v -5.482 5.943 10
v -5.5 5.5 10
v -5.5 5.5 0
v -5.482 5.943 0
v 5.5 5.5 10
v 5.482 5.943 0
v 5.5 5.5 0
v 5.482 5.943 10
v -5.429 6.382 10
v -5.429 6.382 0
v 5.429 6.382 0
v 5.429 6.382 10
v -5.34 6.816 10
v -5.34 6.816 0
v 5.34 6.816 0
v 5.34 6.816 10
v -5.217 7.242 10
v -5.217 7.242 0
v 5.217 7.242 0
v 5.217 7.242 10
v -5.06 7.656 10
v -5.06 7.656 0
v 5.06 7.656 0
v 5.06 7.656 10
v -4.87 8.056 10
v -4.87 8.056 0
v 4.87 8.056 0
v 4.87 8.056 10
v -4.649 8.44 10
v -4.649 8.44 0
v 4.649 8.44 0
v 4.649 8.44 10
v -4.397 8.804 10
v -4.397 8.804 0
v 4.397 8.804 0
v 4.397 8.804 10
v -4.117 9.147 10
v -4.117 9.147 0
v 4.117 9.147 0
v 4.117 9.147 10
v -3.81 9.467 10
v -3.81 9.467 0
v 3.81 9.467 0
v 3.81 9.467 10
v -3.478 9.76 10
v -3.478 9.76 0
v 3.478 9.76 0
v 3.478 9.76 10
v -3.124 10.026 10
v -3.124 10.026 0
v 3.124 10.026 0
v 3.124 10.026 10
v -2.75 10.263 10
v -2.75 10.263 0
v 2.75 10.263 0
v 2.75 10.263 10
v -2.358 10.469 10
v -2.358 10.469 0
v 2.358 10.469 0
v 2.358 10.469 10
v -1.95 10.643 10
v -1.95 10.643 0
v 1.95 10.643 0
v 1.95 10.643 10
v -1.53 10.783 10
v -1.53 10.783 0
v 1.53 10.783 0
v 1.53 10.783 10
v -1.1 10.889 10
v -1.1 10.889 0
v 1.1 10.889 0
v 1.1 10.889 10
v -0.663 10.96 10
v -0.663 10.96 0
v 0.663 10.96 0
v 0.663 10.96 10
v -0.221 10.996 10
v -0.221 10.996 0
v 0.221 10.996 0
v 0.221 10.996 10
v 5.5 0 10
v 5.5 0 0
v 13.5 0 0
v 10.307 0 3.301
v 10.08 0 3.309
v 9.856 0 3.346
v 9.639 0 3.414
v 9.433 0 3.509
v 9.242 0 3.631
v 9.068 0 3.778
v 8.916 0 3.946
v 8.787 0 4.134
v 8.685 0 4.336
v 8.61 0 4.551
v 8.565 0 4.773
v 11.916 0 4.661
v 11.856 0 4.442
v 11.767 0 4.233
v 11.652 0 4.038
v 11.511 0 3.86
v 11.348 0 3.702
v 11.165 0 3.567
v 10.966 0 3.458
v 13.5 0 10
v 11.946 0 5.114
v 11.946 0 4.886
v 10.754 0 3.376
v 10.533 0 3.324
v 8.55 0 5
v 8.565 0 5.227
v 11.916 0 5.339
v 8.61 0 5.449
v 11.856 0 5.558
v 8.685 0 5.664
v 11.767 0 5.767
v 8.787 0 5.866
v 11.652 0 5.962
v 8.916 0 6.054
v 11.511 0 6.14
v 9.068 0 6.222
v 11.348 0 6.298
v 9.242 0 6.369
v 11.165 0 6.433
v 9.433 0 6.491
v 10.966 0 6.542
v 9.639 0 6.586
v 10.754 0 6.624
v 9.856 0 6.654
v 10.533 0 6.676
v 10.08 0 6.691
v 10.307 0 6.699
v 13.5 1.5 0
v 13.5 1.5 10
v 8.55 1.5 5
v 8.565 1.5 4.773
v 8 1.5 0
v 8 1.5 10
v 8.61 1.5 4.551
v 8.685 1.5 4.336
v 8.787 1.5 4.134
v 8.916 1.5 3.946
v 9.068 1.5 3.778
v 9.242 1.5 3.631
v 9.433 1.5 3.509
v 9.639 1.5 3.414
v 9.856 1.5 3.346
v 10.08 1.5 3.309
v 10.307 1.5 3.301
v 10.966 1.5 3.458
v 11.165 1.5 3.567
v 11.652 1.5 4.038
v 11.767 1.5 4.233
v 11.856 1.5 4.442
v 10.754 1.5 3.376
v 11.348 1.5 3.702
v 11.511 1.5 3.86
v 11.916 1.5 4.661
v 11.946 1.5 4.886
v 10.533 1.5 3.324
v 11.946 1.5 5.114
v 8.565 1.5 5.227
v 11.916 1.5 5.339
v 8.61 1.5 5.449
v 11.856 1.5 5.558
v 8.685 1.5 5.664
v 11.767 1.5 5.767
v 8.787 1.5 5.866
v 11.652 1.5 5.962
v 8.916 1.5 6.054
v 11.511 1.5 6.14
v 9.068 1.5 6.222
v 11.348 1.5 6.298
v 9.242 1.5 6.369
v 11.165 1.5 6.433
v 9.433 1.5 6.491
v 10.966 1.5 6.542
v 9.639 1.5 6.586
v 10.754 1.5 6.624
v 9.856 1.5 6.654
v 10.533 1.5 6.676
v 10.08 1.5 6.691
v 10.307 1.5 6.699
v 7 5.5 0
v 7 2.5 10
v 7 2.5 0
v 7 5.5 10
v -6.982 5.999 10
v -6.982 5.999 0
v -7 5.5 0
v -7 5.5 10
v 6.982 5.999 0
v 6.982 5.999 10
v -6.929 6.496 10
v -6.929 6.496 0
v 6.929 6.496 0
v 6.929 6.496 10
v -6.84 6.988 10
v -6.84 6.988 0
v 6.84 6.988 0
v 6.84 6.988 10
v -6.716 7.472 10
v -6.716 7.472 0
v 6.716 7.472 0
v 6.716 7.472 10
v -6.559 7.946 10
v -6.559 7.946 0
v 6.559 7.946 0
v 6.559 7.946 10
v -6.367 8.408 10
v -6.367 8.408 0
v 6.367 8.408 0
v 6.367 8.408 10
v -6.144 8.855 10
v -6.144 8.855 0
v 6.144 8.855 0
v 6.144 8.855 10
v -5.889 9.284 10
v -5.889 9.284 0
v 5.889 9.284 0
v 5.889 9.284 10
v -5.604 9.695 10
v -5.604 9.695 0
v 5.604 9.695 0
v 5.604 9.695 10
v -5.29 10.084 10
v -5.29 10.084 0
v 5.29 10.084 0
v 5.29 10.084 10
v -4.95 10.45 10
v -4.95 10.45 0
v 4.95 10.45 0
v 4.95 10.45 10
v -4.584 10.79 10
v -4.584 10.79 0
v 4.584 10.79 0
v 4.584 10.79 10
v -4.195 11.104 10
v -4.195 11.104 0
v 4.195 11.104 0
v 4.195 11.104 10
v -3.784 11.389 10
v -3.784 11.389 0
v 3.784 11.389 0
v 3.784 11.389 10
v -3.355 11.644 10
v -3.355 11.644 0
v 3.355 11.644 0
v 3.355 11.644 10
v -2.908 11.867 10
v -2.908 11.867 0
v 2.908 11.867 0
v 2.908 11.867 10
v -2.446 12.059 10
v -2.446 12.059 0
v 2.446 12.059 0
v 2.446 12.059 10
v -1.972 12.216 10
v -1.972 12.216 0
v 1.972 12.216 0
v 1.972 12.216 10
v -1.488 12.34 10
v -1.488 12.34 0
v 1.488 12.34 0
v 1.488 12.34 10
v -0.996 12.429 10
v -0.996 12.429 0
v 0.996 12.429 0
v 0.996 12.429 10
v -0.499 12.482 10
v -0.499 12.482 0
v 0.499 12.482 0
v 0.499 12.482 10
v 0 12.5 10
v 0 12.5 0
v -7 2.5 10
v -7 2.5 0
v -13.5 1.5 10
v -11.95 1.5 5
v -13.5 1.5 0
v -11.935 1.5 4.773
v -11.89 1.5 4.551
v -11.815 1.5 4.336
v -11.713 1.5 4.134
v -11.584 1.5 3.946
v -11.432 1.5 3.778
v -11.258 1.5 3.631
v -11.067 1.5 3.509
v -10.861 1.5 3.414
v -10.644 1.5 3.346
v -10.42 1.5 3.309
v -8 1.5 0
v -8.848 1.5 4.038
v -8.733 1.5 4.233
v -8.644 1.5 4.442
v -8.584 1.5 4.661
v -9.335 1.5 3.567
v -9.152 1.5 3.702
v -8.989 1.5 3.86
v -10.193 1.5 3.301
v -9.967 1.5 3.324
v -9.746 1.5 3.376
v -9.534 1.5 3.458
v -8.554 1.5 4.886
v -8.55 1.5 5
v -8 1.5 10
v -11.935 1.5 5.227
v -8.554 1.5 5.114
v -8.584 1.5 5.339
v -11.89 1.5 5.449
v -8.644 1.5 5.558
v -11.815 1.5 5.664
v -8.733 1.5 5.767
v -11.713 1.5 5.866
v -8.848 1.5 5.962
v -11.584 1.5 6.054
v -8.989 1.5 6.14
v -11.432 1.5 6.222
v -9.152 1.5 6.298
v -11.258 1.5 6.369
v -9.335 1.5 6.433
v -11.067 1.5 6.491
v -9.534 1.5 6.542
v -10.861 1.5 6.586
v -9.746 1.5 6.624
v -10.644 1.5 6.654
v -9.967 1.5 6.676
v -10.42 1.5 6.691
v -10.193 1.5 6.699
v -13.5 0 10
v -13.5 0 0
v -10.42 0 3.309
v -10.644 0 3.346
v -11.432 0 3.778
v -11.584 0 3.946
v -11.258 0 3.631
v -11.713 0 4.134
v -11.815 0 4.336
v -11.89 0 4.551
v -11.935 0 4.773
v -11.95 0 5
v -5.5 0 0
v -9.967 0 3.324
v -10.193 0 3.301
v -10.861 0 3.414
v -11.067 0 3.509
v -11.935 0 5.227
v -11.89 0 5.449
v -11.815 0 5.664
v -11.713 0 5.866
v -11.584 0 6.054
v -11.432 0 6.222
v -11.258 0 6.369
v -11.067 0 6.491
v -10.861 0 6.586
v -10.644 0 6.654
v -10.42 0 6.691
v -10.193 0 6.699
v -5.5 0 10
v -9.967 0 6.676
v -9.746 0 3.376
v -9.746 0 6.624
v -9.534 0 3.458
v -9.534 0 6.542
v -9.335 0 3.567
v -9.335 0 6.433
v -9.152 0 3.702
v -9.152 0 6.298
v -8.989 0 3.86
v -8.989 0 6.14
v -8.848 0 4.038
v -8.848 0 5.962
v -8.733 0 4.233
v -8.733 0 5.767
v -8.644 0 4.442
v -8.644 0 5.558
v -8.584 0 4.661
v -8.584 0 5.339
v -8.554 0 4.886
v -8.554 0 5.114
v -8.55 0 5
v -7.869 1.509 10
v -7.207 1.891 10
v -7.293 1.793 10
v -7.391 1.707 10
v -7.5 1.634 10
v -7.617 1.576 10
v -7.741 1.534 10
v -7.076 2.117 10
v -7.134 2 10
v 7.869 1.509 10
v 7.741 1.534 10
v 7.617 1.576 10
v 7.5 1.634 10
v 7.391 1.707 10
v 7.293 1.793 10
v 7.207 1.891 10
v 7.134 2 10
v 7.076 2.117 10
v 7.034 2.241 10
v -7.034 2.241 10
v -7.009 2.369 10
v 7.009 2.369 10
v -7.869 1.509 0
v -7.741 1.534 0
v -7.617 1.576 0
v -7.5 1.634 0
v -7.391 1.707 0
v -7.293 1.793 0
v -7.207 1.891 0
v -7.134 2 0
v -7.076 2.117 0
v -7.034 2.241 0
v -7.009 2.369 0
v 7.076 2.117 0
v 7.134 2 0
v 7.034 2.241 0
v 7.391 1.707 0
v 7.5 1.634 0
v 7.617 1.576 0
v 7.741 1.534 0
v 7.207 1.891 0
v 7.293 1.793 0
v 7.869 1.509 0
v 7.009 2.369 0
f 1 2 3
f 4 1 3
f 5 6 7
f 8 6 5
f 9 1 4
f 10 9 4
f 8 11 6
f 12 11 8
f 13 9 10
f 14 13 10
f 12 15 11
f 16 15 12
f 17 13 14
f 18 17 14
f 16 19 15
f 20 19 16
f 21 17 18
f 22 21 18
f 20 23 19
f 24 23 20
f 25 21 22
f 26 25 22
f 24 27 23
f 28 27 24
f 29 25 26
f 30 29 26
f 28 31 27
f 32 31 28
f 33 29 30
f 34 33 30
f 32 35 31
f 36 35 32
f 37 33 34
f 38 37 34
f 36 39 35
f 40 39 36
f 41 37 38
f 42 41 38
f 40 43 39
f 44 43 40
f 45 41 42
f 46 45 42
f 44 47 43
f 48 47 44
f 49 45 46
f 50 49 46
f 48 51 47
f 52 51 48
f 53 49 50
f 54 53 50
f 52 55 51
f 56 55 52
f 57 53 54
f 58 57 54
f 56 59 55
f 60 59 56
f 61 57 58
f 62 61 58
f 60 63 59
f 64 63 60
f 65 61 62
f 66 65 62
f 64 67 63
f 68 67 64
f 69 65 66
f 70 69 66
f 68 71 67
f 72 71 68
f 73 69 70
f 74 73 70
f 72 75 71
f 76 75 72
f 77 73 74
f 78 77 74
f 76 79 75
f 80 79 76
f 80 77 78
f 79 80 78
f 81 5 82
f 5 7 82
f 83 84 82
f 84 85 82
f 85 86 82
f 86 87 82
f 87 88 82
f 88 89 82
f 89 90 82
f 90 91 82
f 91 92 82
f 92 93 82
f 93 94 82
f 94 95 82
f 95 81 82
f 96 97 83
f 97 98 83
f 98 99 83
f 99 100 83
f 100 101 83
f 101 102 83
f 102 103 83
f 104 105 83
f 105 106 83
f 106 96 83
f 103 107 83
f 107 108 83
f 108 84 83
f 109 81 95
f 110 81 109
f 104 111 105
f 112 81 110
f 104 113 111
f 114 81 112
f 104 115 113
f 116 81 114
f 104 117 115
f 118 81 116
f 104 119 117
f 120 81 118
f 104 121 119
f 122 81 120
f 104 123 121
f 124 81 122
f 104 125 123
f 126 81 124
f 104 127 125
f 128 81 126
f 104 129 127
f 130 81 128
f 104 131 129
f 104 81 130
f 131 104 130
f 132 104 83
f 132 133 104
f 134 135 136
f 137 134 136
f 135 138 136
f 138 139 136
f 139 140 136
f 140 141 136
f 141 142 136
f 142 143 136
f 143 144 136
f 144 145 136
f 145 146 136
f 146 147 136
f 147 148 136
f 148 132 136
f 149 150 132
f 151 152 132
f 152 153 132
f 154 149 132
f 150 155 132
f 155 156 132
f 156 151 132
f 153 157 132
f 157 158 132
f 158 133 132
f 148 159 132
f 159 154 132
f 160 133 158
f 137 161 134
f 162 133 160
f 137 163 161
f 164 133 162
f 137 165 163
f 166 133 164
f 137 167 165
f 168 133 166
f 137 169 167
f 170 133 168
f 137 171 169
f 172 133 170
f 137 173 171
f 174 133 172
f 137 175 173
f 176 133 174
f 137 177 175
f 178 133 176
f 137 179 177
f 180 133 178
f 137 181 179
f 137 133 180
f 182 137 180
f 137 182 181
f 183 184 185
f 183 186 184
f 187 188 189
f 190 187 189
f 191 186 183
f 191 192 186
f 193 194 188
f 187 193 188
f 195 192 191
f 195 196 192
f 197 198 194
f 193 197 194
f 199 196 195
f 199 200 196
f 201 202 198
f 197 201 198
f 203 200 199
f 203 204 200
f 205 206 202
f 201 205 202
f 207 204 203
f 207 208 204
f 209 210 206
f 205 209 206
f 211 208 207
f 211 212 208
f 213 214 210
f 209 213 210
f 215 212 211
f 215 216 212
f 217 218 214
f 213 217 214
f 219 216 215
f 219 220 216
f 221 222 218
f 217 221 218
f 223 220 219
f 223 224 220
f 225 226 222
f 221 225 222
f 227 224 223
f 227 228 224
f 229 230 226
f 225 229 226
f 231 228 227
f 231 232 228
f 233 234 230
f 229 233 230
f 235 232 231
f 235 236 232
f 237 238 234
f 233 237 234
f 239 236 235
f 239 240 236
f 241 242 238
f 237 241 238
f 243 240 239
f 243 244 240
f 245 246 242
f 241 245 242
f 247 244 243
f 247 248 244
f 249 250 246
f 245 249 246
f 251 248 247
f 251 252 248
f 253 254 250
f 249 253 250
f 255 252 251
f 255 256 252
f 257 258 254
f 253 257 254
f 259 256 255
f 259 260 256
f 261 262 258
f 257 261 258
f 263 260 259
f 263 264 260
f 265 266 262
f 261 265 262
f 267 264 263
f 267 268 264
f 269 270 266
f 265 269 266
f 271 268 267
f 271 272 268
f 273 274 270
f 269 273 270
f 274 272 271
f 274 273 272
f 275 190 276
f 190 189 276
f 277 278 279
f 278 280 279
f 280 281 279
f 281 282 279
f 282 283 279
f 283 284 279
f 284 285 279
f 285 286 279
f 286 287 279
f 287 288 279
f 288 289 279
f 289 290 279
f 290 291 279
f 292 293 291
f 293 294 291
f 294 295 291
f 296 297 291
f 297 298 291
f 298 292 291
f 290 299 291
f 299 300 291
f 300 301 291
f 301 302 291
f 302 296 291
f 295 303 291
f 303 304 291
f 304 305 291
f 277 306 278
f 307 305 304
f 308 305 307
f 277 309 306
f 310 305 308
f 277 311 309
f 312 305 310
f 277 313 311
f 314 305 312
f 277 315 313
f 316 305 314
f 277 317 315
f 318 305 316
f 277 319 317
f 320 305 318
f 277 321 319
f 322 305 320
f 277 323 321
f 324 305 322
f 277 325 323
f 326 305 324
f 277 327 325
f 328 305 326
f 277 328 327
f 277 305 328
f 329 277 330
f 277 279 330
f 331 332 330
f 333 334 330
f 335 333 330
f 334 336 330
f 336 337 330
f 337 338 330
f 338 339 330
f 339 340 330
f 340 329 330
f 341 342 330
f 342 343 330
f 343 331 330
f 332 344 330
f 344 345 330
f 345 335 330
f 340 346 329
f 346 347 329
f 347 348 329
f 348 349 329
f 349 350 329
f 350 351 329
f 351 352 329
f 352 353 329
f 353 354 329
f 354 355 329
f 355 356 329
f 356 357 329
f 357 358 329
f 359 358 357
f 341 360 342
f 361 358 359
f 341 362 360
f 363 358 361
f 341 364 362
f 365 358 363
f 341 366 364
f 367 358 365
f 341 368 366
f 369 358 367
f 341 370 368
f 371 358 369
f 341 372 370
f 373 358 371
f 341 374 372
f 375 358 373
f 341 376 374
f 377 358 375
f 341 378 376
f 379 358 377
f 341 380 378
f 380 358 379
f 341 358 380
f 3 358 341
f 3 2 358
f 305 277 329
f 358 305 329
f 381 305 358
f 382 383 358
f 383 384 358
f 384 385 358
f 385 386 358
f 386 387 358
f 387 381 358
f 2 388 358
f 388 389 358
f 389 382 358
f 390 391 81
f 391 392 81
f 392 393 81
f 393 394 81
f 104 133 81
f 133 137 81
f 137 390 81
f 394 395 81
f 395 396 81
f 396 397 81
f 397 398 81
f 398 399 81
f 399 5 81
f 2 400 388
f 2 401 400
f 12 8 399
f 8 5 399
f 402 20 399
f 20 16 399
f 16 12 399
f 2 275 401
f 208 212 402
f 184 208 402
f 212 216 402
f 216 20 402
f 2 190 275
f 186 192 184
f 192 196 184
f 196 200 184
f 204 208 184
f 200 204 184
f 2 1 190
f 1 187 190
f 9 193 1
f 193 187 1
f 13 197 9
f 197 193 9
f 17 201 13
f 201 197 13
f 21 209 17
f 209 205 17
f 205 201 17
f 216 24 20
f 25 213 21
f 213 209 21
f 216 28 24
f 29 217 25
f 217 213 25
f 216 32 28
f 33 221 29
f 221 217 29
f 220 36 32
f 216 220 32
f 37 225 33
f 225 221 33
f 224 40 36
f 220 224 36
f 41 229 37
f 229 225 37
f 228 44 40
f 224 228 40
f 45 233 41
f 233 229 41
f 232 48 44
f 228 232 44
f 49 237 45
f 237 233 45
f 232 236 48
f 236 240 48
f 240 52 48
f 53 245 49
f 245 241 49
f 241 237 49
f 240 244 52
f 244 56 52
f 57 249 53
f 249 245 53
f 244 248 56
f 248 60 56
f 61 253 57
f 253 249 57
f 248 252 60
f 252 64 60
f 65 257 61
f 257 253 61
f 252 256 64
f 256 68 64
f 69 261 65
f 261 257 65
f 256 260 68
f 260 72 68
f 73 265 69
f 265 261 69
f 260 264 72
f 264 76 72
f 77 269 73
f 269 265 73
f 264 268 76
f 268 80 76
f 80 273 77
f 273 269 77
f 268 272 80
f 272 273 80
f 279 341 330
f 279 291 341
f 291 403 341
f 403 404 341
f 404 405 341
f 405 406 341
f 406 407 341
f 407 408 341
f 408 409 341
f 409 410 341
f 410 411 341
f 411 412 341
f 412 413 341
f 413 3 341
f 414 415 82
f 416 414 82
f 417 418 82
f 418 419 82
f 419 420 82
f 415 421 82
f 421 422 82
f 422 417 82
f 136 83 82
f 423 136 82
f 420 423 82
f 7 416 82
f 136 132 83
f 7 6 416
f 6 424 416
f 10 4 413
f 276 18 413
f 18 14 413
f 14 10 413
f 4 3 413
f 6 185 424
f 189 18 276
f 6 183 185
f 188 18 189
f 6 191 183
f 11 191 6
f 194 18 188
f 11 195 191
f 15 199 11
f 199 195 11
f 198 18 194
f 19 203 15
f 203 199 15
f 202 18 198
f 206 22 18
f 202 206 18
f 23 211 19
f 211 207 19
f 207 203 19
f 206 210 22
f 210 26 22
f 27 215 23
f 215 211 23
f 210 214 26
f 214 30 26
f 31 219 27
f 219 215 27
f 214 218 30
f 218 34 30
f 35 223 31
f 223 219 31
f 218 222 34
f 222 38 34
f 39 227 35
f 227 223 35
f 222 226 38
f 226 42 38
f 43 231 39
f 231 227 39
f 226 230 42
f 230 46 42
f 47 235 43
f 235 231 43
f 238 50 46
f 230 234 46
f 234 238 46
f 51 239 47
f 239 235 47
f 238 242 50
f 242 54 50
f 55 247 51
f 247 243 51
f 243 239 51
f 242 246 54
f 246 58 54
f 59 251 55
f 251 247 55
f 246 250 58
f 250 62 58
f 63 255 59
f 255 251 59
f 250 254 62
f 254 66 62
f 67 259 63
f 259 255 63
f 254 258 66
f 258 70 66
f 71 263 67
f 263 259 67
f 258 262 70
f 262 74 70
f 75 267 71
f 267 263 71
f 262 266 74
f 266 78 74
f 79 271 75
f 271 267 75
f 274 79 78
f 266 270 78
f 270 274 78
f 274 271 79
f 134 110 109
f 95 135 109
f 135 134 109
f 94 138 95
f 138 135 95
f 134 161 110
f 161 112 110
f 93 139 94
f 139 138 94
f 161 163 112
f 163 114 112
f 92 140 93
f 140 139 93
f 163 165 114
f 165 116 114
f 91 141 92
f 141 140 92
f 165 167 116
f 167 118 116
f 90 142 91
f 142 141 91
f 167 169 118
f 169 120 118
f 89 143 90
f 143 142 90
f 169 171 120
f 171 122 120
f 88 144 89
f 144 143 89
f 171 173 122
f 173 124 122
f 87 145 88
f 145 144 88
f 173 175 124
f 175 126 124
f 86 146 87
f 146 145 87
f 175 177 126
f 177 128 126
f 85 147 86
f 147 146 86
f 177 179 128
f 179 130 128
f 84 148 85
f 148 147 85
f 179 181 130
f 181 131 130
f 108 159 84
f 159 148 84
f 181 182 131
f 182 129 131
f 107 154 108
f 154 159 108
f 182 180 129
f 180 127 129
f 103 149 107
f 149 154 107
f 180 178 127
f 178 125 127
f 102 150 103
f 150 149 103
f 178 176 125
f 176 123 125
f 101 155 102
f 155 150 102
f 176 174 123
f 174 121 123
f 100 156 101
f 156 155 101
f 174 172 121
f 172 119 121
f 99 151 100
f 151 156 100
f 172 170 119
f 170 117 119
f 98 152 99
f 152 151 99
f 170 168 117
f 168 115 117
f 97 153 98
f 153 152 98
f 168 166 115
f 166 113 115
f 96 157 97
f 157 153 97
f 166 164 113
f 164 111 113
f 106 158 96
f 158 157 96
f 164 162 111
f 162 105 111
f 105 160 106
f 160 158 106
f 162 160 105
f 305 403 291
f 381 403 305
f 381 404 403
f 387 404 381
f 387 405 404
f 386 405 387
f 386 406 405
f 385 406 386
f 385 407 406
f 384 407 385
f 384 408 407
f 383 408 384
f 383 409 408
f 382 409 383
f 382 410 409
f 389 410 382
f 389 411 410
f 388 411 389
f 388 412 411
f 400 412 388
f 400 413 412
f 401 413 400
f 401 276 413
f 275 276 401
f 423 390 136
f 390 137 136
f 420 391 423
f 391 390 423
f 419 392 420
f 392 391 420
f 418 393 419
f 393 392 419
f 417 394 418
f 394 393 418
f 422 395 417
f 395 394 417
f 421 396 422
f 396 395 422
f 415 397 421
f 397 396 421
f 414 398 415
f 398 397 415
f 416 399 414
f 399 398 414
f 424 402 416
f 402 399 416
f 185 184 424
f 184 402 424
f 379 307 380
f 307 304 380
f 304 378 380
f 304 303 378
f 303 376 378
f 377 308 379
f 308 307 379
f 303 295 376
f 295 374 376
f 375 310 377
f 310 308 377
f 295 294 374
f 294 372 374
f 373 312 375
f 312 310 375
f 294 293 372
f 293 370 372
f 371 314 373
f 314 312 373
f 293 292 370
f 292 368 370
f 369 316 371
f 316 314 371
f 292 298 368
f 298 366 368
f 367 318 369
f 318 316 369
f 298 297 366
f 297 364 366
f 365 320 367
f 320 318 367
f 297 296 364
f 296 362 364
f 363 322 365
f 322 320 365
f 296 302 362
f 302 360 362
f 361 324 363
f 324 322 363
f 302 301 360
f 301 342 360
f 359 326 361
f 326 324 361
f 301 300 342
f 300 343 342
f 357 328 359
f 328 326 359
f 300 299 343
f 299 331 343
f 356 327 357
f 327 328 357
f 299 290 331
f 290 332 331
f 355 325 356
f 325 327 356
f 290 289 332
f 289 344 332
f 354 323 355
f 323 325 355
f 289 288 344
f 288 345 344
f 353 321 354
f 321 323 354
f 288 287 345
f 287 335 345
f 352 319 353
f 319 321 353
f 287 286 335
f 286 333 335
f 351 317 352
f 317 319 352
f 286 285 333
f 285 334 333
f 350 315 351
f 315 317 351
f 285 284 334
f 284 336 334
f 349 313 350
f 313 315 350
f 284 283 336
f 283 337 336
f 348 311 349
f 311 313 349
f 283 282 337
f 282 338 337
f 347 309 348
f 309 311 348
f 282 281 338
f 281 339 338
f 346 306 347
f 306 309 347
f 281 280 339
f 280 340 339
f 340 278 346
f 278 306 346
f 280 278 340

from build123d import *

# Parameters (mm, degrees)
BOSS_EXTRUDE1_DEPTH = 10
SKETCH2_R           = 1.7
CUT_EXTRUDE1_DEPTH  = 21.081085628
FILLET1_R           = 1


with BuildPart() as part:
    # Sketch1 → Boss-Extrude1 (new body)
    with BuildSketch(Plane.XY):
        with BuildLine():
            Line((-13.5, 0), (-13.5, 1.5))
            Line((-13.5, 1.5), (-7, 1.5))
            Line((-7, 1.5), (-7, 5.5))
            ThreePointArc((-7, 5.5), (0, 12.5), (7, 5.5))
            Line((7, 5.5), (7, 1.5))
            Line((7, 1.5), (13.5, 1.5))
            Line((13.5, 1.5), (13.5, 0))
            Line((13.5, 0), (5.5, 0))
            Line((5.5, 0), (5.5, 5.5))
            ThreePointArc((5.5, 5.5), (0, 11), (-5.5, 5.5))
            Line((-5.5, 5.5), (-5.5, 0))
            Line((-5.5, 0), (-13.5, 0))
        make_face()
    extrude(amount=BOSS_EXTRUDE1_DEPTH)

    # Sketch2 → Cut-Extrude1 (cut, through all)
    with BuildSketch(Plane(origin=(0, 1.5, 0), x_dir=(1, 0, 0), z_dir=(0, 1, 0))):
        with Locations(Location((10.25, -5, 0), (0, 0, 180))):
            Circle(SKETCH2_R)
    cut_extrude1 = extrude(amount=-CUT_EXTRUDE1_DEPTH, mode=Mode.SUBTRACT)

    # Fillet1
    fillet1_edges = [part.edges().sort_by_distance(p)[0] for p in [
        (-7, 1.5, 5),
        (7, 1.5, 5),
    ]]
    fillet(fillet1_edges, radius=FILLET1_R)

    # Mirror1: Cut-Extrude1 across plane
    add(cut_extrude1.mirror(Plane(origin=(0, 0, 0), x_dir=(0, 0, 1), z_dir=(1, 0, 0))), mode=Mode.SUBTRACT)


solid = part.part
